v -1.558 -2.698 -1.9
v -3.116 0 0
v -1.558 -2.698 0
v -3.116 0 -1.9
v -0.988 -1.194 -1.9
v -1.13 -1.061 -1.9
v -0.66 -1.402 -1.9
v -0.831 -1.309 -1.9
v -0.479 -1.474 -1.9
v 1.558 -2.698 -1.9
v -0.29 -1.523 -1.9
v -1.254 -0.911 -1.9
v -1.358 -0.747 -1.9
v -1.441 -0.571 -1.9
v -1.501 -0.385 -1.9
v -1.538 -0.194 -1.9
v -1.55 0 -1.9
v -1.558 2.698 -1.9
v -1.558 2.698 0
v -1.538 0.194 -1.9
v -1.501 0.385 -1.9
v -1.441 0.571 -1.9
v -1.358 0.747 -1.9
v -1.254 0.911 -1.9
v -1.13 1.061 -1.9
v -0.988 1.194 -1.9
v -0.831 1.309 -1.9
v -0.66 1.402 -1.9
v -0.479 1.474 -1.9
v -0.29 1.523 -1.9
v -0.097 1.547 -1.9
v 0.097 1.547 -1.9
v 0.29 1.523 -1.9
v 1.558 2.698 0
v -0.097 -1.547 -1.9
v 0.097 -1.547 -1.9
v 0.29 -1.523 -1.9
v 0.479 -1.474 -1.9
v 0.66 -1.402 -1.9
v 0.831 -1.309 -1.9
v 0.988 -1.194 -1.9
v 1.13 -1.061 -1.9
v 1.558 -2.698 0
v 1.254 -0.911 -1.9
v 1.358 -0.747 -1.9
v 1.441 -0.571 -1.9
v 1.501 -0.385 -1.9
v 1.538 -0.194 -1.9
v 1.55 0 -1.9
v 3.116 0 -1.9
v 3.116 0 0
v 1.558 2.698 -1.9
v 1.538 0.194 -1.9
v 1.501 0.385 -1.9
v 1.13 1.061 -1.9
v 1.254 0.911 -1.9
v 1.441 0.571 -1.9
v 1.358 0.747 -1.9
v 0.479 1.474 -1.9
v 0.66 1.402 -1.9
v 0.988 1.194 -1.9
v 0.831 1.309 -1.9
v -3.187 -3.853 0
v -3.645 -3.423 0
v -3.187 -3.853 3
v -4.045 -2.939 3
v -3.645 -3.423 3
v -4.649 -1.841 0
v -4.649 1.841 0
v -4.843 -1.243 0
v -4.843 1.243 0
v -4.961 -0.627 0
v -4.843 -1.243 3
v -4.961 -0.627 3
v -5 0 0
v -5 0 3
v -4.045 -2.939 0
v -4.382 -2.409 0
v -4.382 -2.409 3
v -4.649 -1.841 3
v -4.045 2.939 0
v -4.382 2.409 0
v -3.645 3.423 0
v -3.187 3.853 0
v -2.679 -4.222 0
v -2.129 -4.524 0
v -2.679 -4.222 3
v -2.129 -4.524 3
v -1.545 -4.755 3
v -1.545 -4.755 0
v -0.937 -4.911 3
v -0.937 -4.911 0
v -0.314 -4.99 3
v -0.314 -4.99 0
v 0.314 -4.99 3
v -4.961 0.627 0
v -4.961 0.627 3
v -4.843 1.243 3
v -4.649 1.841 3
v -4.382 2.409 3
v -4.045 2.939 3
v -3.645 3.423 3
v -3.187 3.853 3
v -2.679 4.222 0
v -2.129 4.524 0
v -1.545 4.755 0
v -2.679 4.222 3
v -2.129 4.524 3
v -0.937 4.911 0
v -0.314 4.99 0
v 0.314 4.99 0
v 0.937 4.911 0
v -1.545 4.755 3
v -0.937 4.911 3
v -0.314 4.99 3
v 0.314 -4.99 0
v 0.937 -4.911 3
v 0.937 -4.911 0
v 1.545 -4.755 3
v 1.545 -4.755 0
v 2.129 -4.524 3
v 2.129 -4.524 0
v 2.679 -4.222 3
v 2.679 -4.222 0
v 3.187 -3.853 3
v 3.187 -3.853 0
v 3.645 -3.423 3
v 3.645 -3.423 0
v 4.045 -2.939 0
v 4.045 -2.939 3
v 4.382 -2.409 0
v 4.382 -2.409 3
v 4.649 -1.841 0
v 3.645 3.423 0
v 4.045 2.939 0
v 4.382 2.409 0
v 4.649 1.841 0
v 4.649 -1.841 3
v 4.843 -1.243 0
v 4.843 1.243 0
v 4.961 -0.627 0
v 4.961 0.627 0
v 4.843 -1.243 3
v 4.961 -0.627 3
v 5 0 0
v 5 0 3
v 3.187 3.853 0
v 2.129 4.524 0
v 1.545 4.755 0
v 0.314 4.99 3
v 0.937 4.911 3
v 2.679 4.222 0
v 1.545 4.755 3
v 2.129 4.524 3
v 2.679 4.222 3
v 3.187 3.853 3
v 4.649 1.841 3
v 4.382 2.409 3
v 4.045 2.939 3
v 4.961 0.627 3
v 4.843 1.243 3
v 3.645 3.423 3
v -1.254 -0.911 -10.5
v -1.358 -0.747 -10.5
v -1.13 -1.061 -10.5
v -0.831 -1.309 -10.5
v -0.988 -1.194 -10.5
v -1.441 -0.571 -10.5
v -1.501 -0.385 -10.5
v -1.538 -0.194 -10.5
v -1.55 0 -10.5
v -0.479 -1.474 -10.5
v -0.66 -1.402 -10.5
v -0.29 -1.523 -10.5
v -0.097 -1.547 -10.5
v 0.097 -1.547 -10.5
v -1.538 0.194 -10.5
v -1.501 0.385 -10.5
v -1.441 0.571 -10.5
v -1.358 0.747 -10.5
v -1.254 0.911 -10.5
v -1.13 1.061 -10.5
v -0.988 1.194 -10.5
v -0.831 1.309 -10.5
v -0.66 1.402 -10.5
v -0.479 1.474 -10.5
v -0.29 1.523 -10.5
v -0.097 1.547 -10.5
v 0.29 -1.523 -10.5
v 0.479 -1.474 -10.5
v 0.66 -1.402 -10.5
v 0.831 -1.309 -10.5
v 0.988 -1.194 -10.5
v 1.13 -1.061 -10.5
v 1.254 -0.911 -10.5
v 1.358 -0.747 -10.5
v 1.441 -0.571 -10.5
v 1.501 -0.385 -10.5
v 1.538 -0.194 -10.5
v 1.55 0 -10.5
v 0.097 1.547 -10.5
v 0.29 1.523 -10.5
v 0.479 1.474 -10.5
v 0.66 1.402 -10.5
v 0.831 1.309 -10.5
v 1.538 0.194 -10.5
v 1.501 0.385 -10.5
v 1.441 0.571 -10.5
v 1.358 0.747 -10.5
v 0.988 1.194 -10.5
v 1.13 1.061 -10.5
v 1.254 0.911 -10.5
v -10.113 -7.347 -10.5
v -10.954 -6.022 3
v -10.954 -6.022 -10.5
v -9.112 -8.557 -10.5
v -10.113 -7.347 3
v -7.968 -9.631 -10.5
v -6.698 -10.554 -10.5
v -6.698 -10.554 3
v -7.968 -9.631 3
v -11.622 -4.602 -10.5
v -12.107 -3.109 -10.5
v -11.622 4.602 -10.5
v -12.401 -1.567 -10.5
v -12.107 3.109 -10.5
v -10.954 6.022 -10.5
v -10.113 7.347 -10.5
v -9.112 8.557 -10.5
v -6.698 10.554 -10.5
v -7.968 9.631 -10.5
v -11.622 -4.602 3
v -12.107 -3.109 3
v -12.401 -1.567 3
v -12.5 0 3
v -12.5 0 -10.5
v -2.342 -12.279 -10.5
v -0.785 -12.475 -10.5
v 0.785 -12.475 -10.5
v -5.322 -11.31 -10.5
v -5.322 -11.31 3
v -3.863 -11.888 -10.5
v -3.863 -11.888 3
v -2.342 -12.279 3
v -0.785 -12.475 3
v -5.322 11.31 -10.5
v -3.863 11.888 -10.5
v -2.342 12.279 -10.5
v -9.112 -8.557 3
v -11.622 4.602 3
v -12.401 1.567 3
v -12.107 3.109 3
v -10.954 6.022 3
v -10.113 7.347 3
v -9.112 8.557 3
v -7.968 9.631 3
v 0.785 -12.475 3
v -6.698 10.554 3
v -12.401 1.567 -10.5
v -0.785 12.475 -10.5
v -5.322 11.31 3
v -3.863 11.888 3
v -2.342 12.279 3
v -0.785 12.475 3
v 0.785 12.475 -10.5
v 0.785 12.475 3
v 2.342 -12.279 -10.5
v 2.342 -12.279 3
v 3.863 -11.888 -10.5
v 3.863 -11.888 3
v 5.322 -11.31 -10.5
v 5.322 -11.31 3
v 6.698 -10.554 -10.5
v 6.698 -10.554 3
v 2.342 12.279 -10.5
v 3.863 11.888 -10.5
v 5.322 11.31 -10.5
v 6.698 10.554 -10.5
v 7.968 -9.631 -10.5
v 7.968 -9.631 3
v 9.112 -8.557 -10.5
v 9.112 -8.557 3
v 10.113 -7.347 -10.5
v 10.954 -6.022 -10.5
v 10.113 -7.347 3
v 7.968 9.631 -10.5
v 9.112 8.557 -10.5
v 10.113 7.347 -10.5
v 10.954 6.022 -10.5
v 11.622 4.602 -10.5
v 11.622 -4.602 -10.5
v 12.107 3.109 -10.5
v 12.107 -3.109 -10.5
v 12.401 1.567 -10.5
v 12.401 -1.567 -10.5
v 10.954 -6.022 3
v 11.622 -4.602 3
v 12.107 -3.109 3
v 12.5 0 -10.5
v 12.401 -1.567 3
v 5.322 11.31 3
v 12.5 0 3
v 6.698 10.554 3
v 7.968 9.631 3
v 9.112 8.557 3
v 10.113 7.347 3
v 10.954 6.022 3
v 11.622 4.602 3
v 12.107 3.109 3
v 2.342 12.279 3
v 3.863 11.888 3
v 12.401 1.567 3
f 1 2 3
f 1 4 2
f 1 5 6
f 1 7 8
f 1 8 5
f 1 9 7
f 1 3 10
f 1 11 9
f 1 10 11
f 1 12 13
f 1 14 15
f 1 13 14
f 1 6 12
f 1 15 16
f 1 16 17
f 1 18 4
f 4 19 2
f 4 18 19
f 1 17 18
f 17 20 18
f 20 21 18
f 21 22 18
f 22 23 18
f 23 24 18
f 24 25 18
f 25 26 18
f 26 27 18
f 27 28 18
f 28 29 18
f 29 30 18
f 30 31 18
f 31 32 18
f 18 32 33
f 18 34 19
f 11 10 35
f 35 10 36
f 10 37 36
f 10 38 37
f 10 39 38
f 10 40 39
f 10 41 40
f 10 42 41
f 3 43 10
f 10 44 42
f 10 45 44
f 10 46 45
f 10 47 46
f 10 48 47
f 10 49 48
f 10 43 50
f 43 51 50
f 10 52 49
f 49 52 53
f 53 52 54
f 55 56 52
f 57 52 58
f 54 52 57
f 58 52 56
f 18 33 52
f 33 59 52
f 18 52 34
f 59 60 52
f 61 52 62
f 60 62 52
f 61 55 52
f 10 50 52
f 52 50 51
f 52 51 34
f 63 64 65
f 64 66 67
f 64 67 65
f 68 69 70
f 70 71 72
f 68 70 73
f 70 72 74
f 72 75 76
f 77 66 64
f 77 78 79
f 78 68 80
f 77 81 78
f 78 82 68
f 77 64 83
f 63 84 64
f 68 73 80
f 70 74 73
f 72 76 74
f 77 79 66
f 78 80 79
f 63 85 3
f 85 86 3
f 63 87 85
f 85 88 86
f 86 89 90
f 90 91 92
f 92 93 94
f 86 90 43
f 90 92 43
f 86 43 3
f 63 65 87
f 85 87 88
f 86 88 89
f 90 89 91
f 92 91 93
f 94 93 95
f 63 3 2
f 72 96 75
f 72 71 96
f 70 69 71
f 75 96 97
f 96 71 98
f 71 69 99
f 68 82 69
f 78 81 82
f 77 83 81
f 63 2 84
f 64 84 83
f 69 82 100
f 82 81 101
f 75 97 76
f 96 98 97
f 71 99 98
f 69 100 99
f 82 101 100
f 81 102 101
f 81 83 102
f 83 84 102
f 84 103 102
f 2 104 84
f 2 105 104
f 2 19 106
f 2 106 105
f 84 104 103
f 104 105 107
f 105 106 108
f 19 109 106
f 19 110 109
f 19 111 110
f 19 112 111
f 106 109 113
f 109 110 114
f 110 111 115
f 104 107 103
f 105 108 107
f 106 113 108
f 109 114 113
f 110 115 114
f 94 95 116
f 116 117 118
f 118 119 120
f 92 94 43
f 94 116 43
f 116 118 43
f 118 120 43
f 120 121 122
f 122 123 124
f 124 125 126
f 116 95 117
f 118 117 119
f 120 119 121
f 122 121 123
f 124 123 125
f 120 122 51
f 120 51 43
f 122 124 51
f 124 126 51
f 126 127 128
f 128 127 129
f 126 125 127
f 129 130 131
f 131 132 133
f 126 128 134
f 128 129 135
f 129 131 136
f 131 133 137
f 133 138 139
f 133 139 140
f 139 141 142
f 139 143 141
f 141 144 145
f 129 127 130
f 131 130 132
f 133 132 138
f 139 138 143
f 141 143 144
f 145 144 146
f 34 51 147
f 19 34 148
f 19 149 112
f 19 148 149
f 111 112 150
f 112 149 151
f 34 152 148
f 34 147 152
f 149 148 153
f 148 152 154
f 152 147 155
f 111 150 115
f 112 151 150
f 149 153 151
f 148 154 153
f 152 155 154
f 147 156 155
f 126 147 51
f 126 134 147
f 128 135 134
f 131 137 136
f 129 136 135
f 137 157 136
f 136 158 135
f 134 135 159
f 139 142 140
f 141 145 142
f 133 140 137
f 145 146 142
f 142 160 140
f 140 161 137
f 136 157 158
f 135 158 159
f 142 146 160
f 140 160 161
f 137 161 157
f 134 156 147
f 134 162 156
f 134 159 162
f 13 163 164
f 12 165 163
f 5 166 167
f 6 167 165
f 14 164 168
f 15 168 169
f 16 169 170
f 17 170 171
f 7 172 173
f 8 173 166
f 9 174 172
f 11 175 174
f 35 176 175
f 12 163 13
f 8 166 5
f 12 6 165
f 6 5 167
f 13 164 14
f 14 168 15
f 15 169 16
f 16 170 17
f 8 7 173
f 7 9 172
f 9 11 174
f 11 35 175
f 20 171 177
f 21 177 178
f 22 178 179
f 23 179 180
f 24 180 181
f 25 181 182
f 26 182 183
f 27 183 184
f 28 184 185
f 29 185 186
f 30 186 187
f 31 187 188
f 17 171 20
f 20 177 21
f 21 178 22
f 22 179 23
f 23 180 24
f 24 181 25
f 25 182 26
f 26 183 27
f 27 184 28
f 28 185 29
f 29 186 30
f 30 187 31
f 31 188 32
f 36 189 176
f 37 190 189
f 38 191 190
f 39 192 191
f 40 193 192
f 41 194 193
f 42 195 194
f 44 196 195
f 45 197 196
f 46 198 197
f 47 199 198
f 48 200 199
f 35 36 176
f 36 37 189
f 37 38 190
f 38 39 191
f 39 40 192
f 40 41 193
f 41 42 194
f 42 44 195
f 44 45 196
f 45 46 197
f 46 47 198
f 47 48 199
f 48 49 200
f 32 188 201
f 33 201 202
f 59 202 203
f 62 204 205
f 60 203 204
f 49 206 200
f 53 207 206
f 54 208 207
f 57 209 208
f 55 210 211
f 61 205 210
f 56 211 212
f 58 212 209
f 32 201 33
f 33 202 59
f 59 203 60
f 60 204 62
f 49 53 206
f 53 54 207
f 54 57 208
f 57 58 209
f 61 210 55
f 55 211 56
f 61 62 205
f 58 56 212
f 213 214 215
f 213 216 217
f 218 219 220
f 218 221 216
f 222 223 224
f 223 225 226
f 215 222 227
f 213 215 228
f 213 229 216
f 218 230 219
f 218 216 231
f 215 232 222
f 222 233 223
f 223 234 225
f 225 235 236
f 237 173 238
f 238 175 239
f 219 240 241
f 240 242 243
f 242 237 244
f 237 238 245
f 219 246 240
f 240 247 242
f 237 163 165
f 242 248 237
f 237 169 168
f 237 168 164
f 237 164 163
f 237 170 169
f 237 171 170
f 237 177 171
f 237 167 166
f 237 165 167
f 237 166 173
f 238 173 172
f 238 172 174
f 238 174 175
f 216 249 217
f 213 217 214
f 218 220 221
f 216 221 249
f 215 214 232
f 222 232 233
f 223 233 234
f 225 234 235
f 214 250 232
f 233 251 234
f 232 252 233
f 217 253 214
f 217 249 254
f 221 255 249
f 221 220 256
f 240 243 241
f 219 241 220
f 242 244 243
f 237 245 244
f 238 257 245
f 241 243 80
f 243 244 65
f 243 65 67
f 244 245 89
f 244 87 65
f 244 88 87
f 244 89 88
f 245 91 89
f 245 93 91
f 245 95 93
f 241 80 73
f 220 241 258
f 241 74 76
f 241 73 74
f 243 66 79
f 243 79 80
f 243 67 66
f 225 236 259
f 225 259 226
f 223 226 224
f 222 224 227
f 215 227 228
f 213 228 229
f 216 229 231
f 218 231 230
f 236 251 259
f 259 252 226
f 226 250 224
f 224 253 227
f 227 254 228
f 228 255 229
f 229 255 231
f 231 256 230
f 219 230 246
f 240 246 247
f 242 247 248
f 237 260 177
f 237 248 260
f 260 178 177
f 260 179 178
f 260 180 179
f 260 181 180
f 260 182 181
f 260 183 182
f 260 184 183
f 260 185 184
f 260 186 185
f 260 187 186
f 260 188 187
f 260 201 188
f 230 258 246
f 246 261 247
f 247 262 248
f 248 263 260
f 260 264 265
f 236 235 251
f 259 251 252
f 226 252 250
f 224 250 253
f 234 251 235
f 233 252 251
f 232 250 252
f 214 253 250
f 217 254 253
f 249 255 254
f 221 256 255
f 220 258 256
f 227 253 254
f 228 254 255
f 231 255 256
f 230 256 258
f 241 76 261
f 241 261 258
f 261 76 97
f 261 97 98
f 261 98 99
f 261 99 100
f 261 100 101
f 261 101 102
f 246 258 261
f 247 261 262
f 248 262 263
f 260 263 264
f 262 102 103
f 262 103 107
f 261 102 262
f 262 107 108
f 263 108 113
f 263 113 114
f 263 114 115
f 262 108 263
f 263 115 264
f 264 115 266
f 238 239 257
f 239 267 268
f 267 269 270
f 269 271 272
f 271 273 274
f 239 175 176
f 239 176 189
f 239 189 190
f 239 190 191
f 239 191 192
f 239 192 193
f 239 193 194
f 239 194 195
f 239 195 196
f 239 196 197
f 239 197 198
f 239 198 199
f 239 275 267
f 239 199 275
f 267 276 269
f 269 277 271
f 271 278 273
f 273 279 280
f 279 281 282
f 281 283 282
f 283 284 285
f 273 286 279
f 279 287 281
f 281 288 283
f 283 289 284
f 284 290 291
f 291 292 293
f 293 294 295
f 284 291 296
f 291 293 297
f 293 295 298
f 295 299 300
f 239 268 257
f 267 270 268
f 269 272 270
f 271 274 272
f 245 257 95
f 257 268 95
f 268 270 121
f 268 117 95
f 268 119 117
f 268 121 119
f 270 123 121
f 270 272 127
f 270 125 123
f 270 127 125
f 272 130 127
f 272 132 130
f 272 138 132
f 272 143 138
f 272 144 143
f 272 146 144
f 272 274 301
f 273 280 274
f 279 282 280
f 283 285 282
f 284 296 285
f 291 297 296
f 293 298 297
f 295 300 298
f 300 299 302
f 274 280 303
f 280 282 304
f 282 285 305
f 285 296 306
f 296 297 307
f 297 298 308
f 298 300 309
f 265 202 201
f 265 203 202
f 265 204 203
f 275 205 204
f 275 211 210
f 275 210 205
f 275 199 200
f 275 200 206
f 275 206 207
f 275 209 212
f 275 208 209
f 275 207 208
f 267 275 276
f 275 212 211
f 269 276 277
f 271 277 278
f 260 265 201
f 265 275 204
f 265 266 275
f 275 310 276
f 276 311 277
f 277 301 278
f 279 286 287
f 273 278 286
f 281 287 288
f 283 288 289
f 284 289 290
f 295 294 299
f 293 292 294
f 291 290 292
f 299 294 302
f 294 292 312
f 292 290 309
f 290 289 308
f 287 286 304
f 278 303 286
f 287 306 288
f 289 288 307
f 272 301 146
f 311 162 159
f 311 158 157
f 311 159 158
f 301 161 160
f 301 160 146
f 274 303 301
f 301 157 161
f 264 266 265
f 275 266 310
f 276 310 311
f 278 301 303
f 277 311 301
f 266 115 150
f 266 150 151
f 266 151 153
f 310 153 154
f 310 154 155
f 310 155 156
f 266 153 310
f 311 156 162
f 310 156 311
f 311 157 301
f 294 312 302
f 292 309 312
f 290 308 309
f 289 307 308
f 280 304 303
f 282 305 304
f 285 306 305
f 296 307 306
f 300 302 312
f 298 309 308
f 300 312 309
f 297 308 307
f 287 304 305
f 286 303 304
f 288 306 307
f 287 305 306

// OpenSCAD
$fn = 50;

difference() {
	union() {
		translate(v = [0, 0, -10.5]) {
			cylinder(h = 13.5, r = 12.5);
		}
	}
	union() {
		translate(v = [0, 0, 0]) {
			rotate(a = [0, 0, 0]) {
				difference() {
					union() {
						translate(v = [0, 0, -1.9]) {
							linear_extrude(height = 1.9) {
								polygon(points = [[3.1158, 0.0], [1.5579000000000005, 2.698361953111554], [-1.5578999999999994, 2.6983619531115544], [-3.1158, 3.815754496783323e-16], [-1.5579000000000014, -2.6983619531115535], [1.557899999999998, -2.6983619531115552]]);
							}
						}
					}
					union();
				}
			}
		}
		#cylinder(h = 3, r = 5.0);
		#translate(v = [0, 0, -100.0]) {
			cylinder(h = 200, r = 1.55);
		}
	}
}
